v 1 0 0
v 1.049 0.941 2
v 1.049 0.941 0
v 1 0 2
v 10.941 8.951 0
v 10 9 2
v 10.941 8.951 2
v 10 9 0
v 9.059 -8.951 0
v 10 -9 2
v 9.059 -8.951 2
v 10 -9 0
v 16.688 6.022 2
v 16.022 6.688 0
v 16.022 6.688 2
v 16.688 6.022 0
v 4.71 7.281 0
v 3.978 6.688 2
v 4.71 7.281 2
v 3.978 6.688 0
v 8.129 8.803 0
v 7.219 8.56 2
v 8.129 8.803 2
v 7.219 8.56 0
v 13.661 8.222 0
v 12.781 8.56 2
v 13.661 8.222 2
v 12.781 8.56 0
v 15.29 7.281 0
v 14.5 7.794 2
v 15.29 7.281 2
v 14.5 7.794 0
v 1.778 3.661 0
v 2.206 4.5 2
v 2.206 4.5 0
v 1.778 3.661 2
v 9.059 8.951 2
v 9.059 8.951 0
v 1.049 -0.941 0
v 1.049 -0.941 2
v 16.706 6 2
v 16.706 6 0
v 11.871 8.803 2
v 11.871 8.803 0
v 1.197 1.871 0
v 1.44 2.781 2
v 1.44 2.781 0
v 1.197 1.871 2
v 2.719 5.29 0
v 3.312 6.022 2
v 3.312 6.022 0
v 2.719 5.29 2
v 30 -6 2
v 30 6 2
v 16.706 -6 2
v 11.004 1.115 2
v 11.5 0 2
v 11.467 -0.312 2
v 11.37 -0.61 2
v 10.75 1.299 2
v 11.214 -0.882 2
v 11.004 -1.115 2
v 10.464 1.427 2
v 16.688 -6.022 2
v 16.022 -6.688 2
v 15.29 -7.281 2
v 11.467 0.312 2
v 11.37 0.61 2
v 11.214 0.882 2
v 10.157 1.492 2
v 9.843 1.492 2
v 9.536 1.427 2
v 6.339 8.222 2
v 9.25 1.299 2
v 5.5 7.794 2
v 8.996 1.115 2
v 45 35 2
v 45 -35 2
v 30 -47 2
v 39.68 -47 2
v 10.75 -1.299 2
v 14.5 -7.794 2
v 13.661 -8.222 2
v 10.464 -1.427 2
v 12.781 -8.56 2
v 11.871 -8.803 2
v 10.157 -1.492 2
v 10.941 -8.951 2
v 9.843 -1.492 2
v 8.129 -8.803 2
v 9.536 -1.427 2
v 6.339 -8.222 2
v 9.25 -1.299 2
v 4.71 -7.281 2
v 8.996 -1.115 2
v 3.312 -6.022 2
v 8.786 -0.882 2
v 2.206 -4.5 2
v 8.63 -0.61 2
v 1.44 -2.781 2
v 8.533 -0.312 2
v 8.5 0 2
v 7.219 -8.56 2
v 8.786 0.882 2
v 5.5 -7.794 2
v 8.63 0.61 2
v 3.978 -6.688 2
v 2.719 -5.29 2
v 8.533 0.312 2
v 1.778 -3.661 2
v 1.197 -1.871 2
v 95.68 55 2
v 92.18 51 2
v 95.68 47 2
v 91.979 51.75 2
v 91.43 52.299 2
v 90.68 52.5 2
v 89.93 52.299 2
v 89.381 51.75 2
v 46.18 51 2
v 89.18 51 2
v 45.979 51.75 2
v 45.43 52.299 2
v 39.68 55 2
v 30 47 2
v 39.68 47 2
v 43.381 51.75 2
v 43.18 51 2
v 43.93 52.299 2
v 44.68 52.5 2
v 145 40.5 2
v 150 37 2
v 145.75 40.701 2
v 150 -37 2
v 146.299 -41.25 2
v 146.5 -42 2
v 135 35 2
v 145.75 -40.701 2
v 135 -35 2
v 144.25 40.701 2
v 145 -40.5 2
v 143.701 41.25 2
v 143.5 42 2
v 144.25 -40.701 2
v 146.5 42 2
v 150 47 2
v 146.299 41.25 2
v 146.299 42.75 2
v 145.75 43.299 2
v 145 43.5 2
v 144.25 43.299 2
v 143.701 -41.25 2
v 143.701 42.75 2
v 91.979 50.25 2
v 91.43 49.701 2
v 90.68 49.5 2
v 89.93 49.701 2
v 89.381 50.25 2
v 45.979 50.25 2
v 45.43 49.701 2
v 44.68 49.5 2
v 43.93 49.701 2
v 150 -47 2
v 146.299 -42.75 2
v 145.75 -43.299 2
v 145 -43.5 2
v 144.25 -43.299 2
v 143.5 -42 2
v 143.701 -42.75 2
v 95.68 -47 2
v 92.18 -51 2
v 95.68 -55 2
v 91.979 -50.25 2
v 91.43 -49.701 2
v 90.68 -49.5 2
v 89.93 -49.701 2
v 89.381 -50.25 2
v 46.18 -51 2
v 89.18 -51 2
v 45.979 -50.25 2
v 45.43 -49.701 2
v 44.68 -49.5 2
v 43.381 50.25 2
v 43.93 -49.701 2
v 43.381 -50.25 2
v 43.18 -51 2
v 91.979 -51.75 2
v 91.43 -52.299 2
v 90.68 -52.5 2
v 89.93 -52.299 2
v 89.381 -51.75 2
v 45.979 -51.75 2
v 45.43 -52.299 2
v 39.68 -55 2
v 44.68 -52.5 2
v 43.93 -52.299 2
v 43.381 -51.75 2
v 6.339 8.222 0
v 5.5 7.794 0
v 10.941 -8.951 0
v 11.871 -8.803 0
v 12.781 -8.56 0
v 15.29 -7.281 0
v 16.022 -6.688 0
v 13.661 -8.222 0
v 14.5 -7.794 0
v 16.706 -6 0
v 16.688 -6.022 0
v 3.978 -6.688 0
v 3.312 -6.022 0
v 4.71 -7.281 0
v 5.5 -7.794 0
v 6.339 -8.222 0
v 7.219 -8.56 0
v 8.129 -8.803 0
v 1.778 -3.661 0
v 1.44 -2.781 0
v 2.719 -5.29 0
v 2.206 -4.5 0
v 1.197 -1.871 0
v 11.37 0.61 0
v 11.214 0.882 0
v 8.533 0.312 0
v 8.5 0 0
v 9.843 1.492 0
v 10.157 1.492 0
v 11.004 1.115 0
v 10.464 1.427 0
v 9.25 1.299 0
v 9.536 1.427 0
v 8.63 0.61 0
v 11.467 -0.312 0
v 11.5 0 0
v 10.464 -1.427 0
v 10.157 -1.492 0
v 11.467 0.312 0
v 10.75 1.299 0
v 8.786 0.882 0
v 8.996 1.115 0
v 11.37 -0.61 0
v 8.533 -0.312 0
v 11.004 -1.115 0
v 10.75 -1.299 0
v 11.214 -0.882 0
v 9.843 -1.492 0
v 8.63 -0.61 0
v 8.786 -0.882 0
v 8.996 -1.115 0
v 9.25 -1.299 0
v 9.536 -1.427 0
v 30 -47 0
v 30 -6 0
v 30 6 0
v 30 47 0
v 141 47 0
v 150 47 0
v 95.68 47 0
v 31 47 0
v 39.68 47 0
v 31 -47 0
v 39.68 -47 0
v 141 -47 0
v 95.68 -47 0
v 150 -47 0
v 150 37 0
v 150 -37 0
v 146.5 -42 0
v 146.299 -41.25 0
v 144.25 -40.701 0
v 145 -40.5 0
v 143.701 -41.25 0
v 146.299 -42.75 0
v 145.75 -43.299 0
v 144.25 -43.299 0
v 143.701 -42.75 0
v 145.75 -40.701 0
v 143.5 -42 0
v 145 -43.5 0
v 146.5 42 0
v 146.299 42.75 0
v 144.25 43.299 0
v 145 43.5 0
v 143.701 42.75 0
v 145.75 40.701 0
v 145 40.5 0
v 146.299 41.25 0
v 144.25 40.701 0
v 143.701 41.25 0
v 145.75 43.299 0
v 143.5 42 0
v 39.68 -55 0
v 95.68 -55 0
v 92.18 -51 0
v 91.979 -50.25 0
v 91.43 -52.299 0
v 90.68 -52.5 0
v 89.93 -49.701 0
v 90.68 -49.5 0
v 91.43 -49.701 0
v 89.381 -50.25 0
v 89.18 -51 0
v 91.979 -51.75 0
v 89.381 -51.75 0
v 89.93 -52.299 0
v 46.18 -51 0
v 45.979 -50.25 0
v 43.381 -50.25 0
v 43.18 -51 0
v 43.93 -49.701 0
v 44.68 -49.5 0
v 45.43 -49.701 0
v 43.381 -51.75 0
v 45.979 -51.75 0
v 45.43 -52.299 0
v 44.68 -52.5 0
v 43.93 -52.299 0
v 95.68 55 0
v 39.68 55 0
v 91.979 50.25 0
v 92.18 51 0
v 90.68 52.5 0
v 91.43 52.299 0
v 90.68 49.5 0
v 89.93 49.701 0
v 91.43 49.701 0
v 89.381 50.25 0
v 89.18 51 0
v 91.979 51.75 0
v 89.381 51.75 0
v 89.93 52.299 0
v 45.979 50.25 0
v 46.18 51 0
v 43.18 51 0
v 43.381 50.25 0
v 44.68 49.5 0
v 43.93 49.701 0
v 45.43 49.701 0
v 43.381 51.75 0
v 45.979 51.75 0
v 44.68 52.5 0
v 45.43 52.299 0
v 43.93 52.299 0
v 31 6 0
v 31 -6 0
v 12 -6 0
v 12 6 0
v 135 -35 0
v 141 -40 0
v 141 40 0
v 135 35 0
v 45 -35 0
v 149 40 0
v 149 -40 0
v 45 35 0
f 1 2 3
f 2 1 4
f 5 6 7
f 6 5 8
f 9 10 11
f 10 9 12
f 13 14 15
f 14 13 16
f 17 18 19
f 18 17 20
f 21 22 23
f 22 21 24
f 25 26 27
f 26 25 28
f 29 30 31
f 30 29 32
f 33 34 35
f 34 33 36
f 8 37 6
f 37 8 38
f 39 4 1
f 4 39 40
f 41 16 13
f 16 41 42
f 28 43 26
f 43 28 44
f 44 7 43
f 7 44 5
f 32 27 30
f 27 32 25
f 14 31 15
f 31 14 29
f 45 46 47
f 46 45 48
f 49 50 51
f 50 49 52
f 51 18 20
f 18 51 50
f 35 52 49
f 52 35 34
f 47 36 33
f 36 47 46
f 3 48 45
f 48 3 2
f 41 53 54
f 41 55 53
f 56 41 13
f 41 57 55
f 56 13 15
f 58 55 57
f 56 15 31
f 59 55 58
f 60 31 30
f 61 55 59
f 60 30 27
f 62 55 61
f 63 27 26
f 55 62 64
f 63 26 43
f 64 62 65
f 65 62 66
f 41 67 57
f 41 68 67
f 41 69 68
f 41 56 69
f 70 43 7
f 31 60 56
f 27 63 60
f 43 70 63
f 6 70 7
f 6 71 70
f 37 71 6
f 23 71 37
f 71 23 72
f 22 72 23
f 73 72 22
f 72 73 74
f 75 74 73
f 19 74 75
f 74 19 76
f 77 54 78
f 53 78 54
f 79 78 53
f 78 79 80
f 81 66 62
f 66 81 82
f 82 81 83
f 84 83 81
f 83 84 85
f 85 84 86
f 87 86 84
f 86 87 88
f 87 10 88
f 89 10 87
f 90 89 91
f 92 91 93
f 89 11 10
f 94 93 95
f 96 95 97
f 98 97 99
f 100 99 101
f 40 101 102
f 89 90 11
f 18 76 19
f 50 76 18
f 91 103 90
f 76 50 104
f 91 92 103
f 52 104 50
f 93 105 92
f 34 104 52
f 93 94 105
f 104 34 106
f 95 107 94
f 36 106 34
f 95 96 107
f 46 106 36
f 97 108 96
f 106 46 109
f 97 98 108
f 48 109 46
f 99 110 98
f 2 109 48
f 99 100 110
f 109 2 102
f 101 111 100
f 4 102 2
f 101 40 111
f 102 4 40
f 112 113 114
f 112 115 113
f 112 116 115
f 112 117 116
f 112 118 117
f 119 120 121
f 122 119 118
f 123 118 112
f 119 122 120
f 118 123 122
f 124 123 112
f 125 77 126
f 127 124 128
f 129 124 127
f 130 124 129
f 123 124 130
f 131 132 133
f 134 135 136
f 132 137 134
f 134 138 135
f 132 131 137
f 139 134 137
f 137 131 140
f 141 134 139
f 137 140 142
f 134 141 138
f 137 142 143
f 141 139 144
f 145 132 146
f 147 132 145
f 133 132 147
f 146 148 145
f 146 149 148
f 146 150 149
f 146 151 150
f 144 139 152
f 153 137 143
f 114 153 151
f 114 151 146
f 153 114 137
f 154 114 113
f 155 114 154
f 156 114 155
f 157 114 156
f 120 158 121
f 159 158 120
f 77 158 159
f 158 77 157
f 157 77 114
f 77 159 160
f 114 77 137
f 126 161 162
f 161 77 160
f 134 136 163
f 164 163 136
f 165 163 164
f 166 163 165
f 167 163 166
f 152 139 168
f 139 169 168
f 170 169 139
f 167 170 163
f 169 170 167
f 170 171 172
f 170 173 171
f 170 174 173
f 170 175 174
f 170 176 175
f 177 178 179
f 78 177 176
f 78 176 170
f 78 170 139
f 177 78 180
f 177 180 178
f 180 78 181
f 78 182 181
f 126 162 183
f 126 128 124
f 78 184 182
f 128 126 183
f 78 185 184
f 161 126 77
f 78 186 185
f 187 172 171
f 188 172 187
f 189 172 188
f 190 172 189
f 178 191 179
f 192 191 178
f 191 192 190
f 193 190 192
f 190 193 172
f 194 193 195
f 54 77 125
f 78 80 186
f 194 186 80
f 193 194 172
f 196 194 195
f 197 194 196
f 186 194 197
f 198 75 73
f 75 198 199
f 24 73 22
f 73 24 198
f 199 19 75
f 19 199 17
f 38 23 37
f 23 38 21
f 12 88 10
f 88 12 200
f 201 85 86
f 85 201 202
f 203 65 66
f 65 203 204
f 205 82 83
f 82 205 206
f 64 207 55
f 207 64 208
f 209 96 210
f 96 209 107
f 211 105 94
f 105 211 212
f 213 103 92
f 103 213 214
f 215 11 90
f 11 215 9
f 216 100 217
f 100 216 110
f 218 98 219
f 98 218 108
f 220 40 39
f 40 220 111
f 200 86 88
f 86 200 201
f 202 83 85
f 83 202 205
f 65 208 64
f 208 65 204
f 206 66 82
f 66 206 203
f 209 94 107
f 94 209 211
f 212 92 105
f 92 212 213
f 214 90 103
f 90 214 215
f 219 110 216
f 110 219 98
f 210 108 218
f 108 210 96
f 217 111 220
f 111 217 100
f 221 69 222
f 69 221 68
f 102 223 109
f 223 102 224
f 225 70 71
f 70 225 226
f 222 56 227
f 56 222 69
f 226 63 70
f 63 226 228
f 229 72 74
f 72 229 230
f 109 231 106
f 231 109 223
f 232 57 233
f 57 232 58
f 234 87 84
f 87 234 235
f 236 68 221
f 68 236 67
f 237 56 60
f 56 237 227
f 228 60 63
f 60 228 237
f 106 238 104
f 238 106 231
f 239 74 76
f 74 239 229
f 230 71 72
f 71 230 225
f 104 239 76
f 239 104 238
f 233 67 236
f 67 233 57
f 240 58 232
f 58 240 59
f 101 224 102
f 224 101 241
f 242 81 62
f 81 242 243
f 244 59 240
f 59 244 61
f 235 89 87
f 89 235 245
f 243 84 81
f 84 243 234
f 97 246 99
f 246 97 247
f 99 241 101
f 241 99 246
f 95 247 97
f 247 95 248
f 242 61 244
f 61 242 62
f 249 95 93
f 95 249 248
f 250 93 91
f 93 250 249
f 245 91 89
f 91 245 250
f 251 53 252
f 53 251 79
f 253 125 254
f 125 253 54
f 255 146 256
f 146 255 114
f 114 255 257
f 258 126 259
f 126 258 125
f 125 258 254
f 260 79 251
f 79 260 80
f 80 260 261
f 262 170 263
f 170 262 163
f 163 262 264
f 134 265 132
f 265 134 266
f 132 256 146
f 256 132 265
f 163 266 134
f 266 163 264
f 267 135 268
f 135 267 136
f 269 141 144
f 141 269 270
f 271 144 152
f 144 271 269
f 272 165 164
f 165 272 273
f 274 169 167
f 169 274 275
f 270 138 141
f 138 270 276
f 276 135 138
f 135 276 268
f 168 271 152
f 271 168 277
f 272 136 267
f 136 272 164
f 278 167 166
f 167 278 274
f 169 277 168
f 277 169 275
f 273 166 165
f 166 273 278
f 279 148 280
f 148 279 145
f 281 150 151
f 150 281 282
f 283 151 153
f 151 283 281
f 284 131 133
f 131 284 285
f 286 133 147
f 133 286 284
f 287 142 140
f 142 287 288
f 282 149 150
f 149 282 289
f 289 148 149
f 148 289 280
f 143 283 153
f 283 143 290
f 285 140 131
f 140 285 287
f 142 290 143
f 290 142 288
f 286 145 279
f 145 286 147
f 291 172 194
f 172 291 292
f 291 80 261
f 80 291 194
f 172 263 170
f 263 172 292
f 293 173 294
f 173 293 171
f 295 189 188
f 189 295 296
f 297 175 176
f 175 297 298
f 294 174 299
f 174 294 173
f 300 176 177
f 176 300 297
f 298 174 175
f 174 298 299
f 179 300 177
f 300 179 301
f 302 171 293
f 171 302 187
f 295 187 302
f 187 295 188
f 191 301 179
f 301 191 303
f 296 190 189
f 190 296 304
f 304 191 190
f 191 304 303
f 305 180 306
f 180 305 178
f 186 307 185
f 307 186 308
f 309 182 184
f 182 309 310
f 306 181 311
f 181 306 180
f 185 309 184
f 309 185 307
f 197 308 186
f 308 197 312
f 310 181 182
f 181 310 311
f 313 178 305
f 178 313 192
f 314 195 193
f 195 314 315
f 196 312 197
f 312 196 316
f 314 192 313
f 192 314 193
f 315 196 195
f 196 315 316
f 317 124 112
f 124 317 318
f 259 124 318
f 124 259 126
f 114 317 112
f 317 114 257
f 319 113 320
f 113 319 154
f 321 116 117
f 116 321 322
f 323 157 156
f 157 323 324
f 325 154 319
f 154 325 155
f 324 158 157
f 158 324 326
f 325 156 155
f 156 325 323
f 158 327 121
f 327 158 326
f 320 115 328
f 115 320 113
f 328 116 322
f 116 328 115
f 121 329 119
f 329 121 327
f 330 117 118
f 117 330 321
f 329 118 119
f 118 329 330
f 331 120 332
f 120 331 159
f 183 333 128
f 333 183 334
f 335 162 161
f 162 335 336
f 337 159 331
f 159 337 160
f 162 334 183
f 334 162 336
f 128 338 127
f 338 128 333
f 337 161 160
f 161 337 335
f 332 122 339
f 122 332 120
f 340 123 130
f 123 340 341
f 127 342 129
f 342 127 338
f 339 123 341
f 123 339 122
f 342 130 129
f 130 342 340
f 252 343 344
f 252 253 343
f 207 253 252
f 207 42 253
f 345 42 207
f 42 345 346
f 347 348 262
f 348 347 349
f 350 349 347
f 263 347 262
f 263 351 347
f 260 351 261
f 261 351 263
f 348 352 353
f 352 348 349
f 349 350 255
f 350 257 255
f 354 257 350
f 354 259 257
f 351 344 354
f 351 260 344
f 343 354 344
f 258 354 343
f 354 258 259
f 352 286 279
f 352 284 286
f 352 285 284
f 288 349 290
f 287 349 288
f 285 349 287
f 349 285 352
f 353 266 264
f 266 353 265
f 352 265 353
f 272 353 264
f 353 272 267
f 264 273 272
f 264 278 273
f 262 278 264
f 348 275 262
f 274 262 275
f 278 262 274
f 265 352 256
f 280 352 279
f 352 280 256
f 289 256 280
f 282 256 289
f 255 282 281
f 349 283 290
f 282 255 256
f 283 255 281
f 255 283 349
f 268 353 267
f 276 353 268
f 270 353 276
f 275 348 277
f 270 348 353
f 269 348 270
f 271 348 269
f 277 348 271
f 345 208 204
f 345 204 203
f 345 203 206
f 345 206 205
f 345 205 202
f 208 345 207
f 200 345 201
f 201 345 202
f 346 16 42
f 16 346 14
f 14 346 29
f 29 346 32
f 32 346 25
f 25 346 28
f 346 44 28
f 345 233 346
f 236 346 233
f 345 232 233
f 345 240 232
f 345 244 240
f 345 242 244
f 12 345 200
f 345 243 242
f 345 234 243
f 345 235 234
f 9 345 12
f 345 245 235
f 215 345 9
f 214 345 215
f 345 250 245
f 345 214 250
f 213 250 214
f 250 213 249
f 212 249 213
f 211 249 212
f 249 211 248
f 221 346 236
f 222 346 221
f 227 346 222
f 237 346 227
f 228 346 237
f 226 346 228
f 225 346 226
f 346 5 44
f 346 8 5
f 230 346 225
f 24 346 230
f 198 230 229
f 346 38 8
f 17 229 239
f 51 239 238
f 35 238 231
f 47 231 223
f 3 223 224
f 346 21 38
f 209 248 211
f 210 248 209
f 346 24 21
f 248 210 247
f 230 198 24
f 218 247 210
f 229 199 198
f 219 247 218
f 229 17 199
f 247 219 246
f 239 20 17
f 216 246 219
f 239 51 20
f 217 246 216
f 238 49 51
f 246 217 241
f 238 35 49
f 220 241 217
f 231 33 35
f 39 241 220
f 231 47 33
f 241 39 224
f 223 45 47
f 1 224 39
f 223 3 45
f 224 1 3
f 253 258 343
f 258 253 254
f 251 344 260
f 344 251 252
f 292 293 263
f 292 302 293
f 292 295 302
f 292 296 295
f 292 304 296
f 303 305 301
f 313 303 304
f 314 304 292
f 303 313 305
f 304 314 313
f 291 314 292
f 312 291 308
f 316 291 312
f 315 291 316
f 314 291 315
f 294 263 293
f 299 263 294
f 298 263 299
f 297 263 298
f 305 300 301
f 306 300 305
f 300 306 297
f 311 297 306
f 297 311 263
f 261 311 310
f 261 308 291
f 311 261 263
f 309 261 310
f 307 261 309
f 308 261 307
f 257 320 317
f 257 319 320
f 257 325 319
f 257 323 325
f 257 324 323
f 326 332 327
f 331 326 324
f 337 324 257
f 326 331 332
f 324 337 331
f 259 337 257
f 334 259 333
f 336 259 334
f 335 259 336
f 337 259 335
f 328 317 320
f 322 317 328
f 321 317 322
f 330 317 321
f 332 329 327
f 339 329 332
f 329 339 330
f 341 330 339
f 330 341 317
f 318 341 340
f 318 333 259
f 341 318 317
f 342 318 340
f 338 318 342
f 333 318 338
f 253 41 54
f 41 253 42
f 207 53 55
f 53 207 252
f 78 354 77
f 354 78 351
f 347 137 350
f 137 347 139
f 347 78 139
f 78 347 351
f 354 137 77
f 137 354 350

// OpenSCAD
difference(){
translate([0,0,-95])
union(){
difference(){
union(){
translate([10,0,84])stabilizing_bar();
chassis_cage();
}
translate([0,-100,0])cube([300,200,95]);
}
translate([12,-6,95])cube([19,12,2]);
translate([31,-47,95])cube([110,94,2]);
translate([31,-40,95])cube([118,80,2]);
}
translate([45,-35,-1])cube([90,70,100]);
}

module chassis_cage(){
translate([30,-47,57])
union(){
difference(){
cube([140,94,40]);
translate([120,-1,20])cube([21,100,21]);
translate([1.5,1.5,-1])cube([117,91,42]);
translate([-30,47,-57])
rotate([90,0,0])translate([67.68,65,-100])
cylinder(d=6.1,h=200,$fn=30);
}
difference(){
union(){
translate([110,84,0])cube([10,10,40]);
translate([110,0,0])cube([10,10,40]);
}
translate([108.5,82.5,-1])cube([10,10,30]);
translate([108.5,1.5,-1])cube([10,10,30]);

translate([115,5,28])cylinder(d=3,h=14,$fn=12);
translate([115,89,28])cylinder(d=3,h=14,$fn=12);

rotate([90,0,0])translate([67.68,65,-100])
cylinder(d=6.1,h=200,$fn=30);
}
}

difference(){
rotate([90,0,0])
{
translate([67.68,65,47])chassis();
mirror([0,0,1])
translate([67.68,65,47])chassis();
}
translate([0,-100,0])cube([300,200,57]);
}

module chassis(){
difference(){
union(){
cylinder(d=18,h=12,$fn=60);
translate([0,19,0])rotate([0,0,-90])
difference(){
cylinder(d=48,h=8,$fn=3);
translate([0,0,-1])cylinder(d=28,h=20,$fn=3);
}
}
translate([0,0,-1])cylinder(d=6.1,h=20,$fn=30);
}

difference(){
translate([-28,26,0])cube([56,6,8]);
translate([23,0,4])rotate([-90,0,0])
cylinder(d=3,h=50,$fn=12);
translate([-23,0,4])rotate([-90,0,0])
cylinder(d=3,h=50,$fn=12);
}
}
}

module rod(){
difference(){
cylinder(d=10,h=35,center=true,$fn=6);
cylinder(d=2.2,h=40,center=true,$fn=12);
}
cylinder(d=2.2,h=15,center=true,$fn=12);
}

module stabilizing_bar(){
difference(){
union(){
hull()
{
translate([-4,64,4])rotate([0,90,0])
cylinder(d=8,h=8,$fn=24);
translate([-4,-64,4])rotate([0,90,0])
cylinder(d=8,h=8,$fn=24);
}
cylinder(d=18,h=13,$fn=60);
}
translate([-5,64,4])rotate([0,90,0])
cylinder(d=3,h=10,$fn=24);
translate([-5,-64,4])rotate([0,90,0])
cylinder(d=3,h=10,$fn=24);
translate([0,0,-1])cylinder(d=3,h=20,$fn=30);
}
}
